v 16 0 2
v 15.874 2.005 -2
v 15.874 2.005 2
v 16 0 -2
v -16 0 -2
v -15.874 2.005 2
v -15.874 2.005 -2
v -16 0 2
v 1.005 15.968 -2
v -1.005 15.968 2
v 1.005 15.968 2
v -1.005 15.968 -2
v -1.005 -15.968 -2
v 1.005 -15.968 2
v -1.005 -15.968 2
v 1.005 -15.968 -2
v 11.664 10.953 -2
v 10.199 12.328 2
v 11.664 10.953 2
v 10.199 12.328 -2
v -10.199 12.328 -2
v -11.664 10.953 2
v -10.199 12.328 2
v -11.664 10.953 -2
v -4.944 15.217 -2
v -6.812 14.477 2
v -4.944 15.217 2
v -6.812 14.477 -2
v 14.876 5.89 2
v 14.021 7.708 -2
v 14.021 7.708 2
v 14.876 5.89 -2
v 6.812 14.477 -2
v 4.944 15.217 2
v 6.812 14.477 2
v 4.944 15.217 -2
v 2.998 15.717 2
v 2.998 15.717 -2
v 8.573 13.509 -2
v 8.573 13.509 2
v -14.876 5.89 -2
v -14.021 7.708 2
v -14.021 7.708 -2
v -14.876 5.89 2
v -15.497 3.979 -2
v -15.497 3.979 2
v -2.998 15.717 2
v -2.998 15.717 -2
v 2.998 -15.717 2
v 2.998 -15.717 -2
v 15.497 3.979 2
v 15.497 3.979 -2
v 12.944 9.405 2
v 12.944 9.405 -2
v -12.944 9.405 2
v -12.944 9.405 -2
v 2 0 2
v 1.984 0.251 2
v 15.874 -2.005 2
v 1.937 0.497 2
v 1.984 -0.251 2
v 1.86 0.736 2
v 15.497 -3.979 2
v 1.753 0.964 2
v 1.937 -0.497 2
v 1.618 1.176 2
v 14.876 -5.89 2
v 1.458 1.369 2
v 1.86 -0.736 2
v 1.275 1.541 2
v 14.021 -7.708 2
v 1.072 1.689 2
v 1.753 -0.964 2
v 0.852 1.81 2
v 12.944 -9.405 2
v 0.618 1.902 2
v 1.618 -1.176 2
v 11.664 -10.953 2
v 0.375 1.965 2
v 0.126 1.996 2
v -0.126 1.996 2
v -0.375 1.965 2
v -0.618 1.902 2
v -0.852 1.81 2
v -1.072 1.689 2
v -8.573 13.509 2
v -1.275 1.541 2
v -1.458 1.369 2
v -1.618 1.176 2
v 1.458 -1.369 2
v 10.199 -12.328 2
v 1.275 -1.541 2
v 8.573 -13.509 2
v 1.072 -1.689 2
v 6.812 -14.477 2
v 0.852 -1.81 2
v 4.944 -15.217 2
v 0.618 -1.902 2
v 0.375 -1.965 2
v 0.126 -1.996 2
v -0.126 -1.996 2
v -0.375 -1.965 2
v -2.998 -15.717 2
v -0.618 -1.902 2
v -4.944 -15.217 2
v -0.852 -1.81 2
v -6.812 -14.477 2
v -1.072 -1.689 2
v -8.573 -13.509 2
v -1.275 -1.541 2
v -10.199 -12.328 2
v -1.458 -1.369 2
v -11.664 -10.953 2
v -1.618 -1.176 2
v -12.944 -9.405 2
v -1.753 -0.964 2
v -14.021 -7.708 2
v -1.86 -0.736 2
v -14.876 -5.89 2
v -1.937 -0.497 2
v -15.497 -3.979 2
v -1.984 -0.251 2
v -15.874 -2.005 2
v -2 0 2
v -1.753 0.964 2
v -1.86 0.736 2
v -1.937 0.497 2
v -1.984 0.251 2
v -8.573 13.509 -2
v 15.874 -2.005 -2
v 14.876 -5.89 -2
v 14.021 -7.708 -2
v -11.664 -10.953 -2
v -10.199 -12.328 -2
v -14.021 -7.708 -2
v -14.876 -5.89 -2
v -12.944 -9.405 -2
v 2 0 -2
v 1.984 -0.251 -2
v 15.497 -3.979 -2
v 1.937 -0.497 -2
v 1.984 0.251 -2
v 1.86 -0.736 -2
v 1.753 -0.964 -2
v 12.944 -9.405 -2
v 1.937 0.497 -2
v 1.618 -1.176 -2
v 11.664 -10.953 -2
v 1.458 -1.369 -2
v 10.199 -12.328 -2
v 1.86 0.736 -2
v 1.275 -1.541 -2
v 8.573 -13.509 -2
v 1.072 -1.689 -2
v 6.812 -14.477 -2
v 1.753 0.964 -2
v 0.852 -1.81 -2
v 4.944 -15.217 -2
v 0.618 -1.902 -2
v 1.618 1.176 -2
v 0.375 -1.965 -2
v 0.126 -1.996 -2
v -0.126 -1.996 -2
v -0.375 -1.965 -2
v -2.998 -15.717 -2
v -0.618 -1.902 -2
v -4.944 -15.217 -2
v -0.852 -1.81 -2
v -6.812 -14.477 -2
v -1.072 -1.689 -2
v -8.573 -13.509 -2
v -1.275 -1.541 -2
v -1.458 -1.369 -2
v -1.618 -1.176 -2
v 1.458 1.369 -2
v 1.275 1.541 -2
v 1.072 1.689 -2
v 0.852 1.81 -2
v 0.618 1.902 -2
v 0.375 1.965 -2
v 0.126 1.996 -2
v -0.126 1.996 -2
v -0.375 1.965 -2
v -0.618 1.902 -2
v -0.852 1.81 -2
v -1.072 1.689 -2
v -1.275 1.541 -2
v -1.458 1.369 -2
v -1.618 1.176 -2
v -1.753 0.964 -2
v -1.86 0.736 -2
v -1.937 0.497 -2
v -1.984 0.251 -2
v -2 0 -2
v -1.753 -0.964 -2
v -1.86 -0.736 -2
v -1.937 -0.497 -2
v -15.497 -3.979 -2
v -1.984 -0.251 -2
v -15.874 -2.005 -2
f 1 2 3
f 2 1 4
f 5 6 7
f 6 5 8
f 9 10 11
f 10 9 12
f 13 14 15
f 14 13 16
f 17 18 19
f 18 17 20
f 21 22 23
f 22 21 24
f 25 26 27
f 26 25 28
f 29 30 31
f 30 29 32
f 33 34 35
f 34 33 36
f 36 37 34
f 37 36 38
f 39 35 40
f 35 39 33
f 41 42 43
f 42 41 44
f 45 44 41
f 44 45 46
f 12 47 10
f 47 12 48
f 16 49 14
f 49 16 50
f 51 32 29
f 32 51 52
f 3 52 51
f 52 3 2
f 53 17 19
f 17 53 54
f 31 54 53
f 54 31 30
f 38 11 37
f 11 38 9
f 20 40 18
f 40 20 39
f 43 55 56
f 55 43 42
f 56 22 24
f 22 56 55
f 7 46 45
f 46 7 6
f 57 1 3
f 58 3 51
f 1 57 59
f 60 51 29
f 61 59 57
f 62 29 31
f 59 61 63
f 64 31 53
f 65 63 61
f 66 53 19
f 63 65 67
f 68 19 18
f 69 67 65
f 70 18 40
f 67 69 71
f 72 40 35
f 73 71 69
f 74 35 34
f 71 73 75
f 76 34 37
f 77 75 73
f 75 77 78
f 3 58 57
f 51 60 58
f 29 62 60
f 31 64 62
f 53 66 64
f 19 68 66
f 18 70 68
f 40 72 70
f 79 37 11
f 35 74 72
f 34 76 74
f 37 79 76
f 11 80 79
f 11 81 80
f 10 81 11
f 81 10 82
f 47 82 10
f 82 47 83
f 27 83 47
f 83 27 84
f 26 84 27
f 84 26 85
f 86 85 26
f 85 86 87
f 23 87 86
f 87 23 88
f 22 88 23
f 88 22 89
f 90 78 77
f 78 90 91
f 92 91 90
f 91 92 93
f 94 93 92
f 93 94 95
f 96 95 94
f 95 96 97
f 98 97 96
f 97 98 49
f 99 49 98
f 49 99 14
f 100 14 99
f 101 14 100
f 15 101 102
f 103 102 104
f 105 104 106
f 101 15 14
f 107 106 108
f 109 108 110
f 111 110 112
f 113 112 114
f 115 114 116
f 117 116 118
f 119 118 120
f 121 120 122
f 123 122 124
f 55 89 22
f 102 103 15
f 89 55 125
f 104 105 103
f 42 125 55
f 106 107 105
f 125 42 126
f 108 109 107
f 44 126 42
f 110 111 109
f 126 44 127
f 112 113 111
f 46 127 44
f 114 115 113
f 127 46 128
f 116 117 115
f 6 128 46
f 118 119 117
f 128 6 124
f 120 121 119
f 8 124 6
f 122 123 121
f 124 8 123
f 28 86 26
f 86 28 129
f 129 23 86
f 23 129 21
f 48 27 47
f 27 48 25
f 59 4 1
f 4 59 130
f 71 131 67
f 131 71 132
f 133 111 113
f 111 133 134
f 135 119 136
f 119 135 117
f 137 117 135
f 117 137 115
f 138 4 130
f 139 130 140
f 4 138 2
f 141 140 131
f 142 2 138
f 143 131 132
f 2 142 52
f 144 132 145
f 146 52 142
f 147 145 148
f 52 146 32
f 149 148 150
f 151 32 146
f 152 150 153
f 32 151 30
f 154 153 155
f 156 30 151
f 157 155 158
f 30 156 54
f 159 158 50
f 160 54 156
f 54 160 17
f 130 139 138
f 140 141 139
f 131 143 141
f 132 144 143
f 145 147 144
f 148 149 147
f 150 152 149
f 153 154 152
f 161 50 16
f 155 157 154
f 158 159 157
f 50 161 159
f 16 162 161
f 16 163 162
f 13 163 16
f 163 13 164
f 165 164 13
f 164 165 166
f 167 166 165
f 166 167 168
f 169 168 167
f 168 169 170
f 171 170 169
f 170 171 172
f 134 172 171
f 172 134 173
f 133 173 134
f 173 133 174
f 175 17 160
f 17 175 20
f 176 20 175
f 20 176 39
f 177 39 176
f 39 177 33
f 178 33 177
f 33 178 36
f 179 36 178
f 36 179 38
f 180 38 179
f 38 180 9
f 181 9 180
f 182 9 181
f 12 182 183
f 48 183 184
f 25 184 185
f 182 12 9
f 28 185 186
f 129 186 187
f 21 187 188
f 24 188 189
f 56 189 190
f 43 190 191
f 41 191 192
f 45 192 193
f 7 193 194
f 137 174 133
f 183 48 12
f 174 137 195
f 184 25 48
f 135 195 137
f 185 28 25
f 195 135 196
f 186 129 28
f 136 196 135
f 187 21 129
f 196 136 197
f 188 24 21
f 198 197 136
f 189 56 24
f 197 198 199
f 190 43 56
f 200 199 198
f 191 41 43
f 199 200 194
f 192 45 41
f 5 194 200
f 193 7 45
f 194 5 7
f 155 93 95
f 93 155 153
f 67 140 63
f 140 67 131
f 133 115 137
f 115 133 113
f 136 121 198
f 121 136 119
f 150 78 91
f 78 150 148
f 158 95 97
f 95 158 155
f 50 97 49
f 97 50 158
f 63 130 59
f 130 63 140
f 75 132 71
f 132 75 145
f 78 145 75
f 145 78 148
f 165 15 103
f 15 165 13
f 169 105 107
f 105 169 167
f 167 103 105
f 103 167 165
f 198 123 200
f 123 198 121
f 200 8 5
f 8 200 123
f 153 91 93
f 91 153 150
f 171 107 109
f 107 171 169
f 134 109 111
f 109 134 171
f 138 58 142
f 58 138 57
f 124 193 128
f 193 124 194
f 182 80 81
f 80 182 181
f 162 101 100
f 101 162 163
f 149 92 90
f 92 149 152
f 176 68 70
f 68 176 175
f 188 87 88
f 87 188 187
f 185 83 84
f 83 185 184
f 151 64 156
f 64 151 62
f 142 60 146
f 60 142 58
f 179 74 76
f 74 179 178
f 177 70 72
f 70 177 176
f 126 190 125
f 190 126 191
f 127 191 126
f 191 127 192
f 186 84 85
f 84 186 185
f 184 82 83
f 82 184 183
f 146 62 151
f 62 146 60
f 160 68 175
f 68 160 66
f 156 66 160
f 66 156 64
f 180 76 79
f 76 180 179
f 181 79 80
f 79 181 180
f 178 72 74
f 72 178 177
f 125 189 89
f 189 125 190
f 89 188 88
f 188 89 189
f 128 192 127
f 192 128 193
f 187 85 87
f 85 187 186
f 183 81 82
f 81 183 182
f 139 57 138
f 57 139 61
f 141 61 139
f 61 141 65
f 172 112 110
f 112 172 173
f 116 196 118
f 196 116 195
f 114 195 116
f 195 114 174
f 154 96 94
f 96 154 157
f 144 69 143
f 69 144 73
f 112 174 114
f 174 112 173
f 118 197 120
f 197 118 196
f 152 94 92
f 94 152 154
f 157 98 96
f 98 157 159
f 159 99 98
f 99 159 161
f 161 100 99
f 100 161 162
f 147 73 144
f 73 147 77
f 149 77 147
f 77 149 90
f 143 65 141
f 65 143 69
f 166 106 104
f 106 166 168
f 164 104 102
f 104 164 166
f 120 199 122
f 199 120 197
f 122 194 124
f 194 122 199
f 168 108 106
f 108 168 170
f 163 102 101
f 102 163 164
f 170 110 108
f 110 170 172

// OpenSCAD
$fn = 50;


difference() {
	union() {
		translate(v = [0, 0, -2.0000000000]) {
			cylinder(h = 4, r = 16.0000000000);
		}
	}
	union() {
		translate(v = [0, 0, -100.0000000000]) {
			cylinder(h = 200, r = 2);
		}
	}
}
